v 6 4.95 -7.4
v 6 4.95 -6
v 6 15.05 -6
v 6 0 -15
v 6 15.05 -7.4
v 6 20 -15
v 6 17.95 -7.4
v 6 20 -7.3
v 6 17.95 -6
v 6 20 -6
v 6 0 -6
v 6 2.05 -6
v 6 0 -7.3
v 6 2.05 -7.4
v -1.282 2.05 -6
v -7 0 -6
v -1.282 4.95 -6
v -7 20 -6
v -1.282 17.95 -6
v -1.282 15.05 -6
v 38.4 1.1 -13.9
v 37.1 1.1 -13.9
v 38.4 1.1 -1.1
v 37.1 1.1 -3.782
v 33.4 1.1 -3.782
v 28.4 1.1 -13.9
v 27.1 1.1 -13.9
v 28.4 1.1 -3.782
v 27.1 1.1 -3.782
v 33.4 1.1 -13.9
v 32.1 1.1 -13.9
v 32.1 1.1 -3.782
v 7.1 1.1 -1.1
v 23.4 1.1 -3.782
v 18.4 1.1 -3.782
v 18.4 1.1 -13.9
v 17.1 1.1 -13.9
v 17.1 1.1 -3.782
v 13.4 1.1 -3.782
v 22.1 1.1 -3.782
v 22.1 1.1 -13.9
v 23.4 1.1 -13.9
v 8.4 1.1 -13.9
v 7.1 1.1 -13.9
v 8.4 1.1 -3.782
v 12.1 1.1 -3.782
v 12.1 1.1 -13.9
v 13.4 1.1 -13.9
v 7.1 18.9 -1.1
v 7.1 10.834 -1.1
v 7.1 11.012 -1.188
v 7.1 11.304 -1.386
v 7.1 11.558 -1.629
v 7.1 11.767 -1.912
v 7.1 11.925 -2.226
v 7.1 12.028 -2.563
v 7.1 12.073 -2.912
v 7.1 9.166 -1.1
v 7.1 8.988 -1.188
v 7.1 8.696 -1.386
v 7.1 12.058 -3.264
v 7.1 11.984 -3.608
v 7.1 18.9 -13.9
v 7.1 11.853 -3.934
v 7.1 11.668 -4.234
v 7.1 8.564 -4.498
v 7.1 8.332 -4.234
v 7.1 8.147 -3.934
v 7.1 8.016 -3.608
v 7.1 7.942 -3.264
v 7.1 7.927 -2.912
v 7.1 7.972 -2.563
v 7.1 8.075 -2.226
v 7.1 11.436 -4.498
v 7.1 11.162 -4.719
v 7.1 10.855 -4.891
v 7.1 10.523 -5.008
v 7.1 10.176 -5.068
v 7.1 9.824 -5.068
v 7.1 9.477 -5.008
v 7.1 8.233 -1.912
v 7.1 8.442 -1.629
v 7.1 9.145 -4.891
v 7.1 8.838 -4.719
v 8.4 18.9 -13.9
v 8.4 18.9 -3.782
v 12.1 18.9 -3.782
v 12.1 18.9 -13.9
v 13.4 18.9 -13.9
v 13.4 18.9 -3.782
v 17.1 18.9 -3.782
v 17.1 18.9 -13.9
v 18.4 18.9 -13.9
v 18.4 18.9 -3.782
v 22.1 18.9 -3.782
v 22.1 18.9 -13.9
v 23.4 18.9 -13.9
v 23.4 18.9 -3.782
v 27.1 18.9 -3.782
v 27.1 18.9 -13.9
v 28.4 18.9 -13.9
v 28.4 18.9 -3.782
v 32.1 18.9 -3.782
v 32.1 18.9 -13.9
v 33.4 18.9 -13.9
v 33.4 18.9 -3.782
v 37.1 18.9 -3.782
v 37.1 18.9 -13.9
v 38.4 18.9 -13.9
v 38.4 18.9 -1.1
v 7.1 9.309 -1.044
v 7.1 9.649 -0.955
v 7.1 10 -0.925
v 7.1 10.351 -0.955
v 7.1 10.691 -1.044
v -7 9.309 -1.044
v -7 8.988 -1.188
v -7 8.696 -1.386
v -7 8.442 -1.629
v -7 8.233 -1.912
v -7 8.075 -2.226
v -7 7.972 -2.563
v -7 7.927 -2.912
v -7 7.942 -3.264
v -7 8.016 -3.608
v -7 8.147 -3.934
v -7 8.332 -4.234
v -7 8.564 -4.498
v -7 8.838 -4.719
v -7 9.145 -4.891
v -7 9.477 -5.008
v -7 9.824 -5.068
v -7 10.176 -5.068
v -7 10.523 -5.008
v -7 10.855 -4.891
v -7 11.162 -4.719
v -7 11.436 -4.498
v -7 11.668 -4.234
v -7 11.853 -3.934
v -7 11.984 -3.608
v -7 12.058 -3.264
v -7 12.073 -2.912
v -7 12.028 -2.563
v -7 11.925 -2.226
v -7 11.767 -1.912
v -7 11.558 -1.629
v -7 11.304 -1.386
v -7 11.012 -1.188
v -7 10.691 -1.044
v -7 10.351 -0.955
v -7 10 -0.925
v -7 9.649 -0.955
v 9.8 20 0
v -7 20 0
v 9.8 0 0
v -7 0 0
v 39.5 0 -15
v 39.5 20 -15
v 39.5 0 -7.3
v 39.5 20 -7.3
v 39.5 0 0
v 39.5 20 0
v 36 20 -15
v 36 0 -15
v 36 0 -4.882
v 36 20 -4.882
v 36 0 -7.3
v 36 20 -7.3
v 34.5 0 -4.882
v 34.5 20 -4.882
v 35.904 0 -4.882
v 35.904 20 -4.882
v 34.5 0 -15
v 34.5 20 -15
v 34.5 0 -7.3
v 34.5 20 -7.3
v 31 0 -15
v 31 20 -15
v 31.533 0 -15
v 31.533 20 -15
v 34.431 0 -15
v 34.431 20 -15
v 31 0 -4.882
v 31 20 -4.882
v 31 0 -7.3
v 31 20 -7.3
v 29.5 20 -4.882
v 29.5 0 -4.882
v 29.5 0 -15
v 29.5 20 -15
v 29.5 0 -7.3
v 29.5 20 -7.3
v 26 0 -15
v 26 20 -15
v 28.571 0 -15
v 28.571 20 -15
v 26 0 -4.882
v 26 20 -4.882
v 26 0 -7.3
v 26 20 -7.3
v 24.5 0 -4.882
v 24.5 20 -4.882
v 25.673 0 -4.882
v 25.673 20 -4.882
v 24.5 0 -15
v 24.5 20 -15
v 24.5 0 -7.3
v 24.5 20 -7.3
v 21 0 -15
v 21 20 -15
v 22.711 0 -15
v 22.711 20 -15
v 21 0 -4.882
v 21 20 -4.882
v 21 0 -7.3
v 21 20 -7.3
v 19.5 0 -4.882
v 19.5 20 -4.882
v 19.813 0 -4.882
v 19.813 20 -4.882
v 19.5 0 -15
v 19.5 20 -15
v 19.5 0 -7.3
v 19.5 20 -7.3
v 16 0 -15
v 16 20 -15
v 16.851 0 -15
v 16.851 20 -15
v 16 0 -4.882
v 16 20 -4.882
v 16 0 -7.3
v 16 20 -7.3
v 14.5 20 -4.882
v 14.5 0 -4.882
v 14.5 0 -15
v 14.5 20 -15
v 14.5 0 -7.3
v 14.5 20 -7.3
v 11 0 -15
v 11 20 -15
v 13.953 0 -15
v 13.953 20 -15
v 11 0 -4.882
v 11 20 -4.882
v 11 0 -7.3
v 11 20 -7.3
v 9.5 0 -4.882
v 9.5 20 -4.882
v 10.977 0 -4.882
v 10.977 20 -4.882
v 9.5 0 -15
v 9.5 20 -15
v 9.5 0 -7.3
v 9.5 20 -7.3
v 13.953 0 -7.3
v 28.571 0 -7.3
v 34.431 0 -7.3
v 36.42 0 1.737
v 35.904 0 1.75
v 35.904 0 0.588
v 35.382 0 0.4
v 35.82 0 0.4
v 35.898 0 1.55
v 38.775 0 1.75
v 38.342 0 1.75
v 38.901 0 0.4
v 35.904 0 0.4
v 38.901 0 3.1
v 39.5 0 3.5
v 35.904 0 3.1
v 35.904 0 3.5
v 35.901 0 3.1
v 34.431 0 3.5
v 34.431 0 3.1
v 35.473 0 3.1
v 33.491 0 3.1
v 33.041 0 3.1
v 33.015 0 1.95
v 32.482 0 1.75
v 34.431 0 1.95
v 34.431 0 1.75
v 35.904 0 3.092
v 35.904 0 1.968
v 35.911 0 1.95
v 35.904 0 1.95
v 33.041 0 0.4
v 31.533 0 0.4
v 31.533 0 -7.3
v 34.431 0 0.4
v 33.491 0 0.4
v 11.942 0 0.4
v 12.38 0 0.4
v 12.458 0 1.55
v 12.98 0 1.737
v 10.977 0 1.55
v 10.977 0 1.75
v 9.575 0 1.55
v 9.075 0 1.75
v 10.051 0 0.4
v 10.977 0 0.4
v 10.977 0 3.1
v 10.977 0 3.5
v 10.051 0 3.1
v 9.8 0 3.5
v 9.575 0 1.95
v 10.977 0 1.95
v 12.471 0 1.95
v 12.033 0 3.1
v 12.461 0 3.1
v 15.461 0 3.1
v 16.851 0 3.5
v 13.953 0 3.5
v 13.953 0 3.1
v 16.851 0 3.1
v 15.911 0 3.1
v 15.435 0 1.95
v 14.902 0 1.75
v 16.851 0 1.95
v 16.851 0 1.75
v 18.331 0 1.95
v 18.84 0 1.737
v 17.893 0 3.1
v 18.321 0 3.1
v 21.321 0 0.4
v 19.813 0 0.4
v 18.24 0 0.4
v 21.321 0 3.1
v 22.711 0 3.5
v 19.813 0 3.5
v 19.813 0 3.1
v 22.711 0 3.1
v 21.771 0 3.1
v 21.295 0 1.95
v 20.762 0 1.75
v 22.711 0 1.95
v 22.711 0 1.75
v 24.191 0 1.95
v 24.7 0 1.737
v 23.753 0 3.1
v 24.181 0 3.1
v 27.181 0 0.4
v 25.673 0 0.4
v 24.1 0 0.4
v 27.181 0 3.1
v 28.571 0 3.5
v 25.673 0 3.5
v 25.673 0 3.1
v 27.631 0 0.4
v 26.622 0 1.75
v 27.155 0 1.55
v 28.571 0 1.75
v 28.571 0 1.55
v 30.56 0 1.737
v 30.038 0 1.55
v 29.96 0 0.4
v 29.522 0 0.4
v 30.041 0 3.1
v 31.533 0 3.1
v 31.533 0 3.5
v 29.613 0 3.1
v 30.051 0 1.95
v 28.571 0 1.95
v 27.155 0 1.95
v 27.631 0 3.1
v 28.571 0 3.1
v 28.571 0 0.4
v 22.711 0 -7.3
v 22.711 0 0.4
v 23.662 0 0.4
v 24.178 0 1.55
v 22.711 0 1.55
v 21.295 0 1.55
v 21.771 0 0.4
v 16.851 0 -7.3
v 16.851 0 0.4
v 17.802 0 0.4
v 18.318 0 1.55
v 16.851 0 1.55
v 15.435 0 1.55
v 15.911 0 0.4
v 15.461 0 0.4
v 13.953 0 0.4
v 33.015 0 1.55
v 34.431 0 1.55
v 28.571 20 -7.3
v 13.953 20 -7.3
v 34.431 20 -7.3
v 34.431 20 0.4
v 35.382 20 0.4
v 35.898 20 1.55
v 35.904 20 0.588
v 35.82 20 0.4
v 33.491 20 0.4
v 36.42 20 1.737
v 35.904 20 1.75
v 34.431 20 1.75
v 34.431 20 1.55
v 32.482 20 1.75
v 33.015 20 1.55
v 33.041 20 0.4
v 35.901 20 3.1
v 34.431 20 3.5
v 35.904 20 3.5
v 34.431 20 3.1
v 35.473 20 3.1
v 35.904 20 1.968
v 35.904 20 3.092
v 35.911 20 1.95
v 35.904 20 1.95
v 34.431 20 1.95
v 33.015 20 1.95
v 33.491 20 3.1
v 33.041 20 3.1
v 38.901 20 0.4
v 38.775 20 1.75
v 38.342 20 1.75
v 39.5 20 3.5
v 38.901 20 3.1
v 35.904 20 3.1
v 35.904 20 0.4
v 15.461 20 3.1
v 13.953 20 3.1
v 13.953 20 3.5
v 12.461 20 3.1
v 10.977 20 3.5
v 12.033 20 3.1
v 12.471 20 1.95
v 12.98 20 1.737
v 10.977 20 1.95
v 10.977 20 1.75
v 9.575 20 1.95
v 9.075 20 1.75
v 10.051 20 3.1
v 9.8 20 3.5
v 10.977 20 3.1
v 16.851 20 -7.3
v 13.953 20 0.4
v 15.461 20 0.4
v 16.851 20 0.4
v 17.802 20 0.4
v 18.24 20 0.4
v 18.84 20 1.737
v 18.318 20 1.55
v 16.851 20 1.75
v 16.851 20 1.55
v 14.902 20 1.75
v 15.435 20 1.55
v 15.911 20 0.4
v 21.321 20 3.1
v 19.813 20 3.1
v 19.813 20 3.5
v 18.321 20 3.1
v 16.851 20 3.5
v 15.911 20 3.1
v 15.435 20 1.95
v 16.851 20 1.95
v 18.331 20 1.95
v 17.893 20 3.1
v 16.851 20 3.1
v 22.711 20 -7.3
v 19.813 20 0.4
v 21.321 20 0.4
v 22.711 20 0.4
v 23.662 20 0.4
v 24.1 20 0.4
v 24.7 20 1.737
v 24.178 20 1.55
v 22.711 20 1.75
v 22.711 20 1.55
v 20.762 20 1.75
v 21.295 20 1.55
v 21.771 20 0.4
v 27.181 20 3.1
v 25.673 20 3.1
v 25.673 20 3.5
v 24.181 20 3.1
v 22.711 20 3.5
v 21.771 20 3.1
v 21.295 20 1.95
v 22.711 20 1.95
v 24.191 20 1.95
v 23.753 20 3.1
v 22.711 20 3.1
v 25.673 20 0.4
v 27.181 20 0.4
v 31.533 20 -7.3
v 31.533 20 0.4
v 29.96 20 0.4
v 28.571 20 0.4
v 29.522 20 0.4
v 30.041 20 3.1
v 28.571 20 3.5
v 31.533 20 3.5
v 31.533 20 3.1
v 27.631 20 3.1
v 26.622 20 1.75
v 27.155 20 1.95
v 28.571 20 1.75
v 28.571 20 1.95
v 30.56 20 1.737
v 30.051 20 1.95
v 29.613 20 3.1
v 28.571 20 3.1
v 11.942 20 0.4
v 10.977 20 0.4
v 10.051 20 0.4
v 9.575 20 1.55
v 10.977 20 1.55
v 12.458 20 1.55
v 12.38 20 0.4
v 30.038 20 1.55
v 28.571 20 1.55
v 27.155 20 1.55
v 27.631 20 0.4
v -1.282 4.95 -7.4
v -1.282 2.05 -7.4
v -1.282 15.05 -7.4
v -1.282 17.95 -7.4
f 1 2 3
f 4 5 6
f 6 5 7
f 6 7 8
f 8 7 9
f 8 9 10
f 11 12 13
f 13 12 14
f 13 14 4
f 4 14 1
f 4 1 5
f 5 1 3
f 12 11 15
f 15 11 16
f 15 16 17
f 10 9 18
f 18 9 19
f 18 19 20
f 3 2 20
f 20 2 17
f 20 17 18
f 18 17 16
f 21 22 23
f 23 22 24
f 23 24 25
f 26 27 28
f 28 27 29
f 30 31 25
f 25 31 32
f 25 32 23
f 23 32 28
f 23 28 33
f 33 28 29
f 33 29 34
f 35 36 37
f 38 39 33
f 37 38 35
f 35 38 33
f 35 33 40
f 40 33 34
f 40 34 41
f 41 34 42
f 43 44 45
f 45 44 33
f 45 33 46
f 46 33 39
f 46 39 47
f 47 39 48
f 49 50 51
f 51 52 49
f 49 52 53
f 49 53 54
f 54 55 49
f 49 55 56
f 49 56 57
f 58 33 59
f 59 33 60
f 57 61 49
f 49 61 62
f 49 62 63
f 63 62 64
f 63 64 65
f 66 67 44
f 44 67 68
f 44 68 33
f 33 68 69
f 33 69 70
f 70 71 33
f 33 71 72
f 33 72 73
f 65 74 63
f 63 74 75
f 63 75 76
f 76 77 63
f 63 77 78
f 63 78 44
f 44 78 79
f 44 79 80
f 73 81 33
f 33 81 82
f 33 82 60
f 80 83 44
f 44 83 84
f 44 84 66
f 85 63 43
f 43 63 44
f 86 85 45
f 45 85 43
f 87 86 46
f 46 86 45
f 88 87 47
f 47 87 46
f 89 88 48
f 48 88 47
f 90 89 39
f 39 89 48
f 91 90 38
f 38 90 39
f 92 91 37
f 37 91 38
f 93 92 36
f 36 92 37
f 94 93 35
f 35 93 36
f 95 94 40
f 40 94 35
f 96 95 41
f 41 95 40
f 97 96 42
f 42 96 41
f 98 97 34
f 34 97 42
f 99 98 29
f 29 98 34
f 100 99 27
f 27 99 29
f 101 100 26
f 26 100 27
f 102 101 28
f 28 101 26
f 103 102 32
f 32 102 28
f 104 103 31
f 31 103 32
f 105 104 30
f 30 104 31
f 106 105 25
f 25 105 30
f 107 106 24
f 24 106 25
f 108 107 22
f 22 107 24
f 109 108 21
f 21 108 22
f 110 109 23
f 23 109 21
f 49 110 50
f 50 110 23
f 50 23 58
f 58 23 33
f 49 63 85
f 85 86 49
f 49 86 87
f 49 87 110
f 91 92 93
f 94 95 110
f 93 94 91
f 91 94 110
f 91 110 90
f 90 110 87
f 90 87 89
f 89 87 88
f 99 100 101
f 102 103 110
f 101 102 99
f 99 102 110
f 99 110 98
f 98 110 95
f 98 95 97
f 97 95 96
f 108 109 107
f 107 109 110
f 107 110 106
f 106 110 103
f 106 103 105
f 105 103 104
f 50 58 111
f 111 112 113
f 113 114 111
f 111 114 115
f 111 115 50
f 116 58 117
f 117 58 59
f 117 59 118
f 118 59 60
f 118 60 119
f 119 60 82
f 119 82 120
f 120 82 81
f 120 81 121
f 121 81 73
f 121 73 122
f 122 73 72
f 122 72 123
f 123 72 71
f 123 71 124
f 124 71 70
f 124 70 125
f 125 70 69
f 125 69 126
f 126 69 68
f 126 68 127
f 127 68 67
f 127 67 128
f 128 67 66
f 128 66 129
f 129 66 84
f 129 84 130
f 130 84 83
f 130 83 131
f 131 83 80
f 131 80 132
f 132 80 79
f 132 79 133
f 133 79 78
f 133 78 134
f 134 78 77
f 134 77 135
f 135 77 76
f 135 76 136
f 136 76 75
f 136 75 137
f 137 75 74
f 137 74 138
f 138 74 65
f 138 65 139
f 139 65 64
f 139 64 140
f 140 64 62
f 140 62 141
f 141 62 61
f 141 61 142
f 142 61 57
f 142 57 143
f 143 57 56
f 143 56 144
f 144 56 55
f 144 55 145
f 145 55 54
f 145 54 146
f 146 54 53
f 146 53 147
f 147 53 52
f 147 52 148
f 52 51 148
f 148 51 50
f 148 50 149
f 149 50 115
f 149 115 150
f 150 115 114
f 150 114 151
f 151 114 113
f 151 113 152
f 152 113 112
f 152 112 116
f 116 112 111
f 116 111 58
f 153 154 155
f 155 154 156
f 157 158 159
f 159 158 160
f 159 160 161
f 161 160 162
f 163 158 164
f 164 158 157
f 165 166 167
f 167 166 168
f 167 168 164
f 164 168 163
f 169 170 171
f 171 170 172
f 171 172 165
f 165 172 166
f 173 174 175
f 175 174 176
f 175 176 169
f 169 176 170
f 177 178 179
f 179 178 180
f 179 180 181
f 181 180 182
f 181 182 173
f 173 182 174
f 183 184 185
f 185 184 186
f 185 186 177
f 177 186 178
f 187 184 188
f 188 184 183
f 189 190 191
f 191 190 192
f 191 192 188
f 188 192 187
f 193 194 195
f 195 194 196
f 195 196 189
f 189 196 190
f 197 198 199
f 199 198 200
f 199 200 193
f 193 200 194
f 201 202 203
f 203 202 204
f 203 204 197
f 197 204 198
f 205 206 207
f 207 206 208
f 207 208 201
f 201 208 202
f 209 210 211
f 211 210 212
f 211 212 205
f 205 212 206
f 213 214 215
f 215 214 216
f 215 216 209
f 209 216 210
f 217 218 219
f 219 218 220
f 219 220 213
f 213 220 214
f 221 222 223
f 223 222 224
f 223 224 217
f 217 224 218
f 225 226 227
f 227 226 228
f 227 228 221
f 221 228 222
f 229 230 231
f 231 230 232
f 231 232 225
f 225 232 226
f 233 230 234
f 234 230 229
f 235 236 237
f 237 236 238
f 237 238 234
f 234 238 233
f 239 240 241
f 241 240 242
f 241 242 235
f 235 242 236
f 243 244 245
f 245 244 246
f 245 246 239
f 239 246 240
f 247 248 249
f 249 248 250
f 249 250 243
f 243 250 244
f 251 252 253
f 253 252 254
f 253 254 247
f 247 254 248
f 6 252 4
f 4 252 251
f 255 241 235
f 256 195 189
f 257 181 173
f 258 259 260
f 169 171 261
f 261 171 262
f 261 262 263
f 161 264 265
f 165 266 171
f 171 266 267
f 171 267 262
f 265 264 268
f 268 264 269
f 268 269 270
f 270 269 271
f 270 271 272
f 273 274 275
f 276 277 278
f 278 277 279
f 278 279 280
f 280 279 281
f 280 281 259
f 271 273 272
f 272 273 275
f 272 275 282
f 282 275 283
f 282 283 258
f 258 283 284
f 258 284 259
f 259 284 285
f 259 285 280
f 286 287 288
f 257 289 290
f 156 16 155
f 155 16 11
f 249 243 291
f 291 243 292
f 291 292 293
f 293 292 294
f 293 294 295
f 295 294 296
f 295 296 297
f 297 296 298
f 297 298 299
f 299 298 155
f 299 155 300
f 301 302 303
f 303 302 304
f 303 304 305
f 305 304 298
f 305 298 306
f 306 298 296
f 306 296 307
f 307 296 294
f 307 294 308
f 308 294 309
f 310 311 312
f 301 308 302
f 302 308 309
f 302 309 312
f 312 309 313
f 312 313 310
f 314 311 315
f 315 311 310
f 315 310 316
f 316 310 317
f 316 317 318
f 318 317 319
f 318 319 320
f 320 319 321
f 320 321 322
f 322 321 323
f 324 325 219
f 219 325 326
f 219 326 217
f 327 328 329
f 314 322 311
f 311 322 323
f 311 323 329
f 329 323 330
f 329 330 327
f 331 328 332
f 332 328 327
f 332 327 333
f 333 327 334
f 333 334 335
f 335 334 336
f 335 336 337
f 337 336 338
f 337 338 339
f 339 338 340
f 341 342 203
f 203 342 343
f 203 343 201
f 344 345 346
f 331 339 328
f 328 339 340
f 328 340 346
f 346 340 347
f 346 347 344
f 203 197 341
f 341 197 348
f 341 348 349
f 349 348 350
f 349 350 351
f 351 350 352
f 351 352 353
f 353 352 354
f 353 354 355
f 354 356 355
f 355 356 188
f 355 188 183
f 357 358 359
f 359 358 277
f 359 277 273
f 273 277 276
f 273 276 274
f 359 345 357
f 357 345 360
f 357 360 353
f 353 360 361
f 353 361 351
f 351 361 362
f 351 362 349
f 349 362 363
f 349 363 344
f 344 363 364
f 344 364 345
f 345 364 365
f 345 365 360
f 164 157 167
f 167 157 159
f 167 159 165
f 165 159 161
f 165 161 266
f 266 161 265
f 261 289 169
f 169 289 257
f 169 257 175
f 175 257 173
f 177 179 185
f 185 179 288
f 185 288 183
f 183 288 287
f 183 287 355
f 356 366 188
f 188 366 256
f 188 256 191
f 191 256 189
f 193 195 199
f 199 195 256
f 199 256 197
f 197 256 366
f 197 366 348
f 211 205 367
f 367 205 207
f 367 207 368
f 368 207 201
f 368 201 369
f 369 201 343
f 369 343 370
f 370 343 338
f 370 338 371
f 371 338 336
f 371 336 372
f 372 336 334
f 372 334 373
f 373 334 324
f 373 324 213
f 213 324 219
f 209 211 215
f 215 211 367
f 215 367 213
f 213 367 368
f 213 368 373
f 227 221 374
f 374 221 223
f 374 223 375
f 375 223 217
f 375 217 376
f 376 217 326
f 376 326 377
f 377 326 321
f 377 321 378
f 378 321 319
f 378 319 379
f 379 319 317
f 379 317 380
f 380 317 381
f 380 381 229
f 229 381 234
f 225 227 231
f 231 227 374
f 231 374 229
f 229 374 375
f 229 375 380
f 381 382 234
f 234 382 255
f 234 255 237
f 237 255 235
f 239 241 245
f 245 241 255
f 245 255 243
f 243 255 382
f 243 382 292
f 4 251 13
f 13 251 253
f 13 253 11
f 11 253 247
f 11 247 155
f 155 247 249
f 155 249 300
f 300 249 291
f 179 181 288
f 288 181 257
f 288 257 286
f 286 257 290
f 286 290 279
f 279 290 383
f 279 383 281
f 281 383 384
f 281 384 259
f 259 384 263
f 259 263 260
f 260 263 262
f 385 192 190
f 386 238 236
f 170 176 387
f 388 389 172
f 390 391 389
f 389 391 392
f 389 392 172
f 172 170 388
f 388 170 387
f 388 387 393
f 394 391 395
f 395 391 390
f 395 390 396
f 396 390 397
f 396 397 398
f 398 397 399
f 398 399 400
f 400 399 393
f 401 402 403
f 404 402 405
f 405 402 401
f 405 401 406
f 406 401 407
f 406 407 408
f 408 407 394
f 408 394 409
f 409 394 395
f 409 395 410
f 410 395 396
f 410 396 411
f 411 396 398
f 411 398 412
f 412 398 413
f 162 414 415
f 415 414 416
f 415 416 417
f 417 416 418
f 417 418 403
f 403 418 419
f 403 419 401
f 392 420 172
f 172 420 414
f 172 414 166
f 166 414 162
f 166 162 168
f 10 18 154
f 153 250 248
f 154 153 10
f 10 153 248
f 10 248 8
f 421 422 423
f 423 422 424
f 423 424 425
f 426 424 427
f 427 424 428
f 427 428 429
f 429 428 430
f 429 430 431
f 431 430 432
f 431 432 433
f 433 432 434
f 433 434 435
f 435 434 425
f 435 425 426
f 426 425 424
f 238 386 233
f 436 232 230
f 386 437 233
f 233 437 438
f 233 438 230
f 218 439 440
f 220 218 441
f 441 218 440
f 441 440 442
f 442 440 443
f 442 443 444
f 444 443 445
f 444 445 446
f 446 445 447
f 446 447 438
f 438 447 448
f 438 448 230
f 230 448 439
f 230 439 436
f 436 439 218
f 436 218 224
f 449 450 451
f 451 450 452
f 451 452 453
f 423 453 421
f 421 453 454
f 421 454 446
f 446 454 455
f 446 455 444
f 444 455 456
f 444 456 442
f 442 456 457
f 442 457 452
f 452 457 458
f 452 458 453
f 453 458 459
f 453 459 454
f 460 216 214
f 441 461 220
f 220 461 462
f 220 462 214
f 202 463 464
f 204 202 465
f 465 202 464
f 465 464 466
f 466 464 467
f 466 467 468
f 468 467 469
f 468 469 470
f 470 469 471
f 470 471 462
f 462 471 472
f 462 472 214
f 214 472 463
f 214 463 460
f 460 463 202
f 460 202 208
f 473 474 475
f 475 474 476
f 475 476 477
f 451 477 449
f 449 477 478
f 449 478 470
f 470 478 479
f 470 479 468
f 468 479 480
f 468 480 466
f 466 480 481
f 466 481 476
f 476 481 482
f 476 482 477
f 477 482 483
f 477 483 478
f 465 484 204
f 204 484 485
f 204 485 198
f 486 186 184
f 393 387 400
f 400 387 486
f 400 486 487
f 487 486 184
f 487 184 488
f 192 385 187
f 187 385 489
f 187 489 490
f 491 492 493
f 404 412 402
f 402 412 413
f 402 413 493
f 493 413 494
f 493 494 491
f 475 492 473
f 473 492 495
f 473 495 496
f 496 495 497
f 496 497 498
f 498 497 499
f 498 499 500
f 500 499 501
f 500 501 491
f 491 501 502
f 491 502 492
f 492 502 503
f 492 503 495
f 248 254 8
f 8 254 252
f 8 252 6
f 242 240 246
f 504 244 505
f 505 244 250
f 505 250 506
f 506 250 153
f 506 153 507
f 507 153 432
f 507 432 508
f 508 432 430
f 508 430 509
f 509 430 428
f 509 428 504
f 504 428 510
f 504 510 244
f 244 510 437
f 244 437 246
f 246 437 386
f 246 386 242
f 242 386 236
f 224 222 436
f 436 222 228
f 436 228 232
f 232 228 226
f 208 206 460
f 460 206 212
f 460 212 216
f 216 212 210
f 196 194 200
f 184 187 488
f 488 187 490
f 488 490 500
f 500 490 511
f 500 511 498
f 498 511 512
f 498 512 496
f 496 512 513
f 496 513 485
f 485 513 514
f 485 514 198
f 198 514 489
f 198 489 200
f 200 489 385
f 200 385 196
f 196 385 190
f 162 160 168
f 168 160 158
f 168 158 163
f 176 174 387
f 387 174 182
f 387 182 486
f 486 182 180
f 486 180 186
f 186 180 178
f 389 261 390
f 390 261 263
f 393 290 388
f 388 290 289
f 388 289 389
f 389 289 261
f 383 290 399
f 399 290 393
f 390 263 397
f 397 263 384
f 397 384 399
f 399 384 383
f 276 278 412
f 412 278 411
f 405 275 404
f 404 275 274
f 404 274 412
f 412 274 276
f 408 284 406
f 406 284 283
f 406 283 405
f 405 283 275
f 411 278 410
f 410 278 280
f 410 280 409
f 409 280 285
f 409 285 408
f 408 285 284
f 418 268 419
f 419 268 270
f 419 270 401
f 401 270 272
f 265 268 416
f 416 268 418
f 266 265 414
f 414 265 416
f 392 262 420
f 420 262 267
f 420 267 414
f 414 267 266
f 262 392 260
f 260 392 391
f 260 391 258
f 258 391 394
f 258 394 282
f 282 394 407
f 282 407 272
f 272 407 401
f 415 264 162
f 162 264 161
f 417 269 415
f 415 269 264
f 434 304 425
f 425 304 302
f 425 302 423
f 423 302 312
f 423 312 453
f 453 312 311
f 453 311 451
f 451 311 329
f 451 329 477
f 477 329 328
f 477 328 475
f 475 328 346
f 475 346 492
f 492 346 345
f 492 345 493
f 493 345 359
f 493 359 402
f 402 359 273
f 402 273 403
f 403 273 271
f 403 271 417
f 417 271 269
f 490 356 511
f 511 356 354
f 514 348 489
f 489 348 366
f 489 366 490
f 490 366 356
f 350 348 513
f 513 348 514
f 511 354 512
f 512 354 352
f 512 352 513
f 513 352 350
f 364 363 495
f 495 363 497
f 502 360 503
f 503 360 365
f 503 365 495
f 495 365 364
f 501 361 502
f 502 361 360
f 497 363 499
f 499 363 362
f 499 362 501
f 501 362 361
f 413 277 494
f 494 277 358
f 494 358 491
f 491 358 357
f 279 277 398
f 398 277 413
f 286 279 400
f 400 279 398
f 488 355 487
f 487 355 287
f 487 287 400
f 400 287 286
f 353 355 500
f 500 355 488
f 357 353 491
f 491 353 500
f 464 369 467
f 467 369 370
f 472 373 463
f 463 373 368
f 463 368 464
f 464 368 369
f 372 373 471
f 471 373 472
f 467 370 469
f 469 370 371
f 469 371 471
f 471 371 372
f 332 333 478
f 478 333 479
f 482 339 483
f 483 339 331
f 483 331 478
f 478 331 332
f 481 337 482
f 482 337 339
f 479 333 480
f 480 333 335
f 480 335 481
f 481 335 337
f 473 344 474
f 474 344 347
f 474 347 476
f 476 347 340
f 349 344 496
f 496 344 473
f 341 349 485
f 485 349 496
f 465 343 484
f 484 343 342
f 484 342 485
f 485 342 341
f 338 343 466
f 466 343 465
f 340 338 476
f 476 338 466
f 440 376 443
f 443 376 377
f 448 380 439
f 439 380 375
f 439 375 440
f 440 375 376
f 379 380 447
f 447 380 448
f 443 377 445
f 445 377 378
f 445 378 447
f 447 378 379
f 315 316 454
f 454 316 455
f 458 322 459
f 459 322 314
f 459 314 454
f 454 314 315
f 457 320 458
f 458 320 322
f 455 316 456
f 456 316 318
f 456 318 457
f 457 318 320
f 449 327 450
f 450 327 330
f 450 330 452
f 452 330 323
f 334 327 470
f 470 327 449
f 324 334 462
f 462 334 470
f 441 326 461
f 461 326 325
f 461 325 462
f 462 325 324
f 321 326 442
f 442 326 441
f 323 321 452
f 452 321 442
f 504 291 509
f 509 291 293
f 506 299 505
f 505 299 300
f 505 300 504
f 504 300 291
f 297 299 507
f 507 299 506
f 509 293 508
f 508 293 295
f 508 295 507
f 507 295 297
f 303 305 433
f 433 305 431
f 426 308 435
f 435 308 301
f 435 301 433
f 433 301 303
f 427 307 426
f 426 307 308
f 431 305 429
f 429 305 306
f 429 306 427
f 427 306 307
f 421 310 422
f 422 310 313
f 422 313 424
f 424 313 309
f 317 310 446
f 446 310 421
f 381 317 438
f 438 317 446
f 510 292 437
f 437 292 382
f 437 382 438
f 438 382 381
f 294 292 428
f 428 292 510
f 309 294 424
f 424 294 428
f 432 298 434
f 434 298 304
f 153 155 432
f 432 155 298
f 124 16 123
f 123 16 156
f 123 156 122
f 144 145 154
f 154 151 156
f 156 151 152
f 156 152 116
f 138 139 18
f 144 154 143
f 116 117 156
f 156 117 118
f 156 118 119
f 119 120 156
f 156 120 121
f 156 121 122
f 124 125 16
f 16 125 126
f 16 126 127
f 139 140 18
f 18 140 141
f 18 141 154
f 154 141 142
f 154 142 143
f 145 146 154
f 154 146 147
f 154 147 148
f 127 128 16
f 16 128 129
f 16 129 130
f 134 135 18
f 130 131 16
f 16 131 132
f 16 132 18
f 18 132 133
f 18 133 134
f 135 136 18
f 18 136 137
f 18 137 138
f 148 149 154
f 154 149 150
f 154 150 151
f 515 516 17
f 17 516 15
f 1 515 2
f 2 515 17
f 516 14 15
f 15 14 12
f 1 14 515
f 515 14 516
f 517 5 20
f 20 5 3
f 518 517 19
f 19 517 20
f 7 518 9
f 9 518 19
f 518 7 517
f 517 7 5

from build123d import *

# Parameters (mm, degrees)
BOSS_EXTRUDE1_DEPTH = 1.1
BOSS_EXTRUDE2_DEPTH = 17.8
BOSS_EXTRUDE3_DEPTH = 1.1
BOSS_EXTRUDE4_DEPTH = 20
LPATTERN1_COUNT     = 5
LPATTERN1_PITCH     = 5.86
BOSS_EXTRUDE5_DEPTH = 20
SKETCH7_W           = 6
SKETCH7_H           = 20
BOSS_EXTRUDE6_DEPTH = 7
SKETCH8_R           = 2.075
CUT_EXTRUDE1_DEPTH  = 14.1
SKETCH9_W           = 7.282395113
SKETCH9_H           = 2.9
BOSS_EXTRUDE7_DEPTH = 1.4


with BuildPart() as part:
    # Sketch2 → Boss-Extrude1 (new body)
    with BuildSketch(Plane(origin=(0, 0, 0), x_dir=(1, 0, 0), z_dir=(0, 1, 0))):
        Polygon((36, 15), (36, 4.881546635), (34.5, 4.881546635), (34.5, 15), (31, 15), (31, 4.881546635), (29.5, 4.881546635), (29.5, 15), (26, 15), (26, 4.881546635), (24.5, 4.881546635), (24.5, 15), (21, 15), (21, 4.881546635), (19.5, 4.881546635), (19.5, 15), (16, 15), (16, 4.881546635), (14.5, 4.881546635), (14.5, 15), (11, 15), (11, 4.881546635), (9.5, 4.881546635), (9.5, 15), (6, 15), (6, 6), (4.5, 6), (0, 6), (0, 0), (39.5, 0), (39.5, 15), align=None)
    extrude(amount=BOSS_EXTRUDE1_DEPTH)

    # Sketch3 → Boss-Extrude2 (add)
    with BuildSketch(Plane(origin=(0, 1.1, 0), x_dir=(1, 0, 0), z_dir=(0, 1, 0))):
        Polygon((6, 6), (0, 6), (0, 0), (39.5, 0), (39.5, 15), (36, 15), (36, 4.881546635), (34.5, 4.881546635), (34.5, 15), (31, 15), (31, 4.881546635), (29.5, 4.881546635), (29.5, 15), (26, 15), (26, 4.881546635), (24.5, 4.881546635), (24.5, 15), (21, 15), (21, 4.881546635), (19.5, 4.881546635), (19.5, 15), (16, 15), (16, 4.881546635), (14.5, 4.881546635), (14.5, 15), (11, 15), (11, 4.881546635), (9.5, 4.881546635), (9.5, 15), (6, 15), align=None)
        Polygon((7.1, 4.9), (7.1, 1.1), (38.4, 1.1), (38.4, 13.9), (37.1, 13.9), (37.1, 3.781546635), (33.4, 3.781546635), (33.4, 13.9), (32.1, 13.9), (32.1, 3.781546635), (28.4, 3.781546635), (28.4, 13.9), (27.1, 13.9), (27.1, 3.781546635), (23.4, 3.781546635), (23.4, 13.9), (22.1, 13.9), (22.1, 3.781546635), (18.4, 3.781546635), (18.4, 13.9), (17.1, 13.9), (17.1, 3.781546635), (13.4, 3.781546635), (13.4, 13.9), (12.1, 13.9), (12.1, 3.781546635), (8.4, 3.781546635), (8.4, 13.9), (7.1, 13.9), align=None, mode=Mode.SUBTRACT)
    extrude(amount=BOSS_EXTRUDE2_DEPTH)

    # Sketch4 → Boss-Extrude3 (add)
    with BuildSketch(Plane(origin=(0, 18.9, 0), x_dir=(1, 0, 0), z_dir=(0, 1, 0))):
        Polygon((0, 6), (0, 0), (39.5, 0), (39.5, 15), (36, 15), (36, 4.881546635), (34.5, 4.881546635), (34.5, 15), (31, 15), (31, 4.881546635), (29.5, 4.881546635), (29.5, 15), (26, 15), (26, 4.881546635), (24.5, 4.881546635), (24.5, 15), (21, 15), (21, 4.881546635), (19.5, 4.881546635), (19.5, 15), (16, 15), (16, 4.881546635), (14.5, 4.881546635), (14.5, 15), (11, 15), (11, 4.881546635), (9.5, 4.881546635), (9.5, 15), (6, 15), (6, 6), align=None)
    extrude(amount=BOSS_EXTRUDE3_DEPTH)

    # Sketch5 → Boss-Extrude4 (add)
    with BuildSketch(Plane.XZ):
        Polygon((33.440143193, 0), (39.5, 0), (38.775126266, 1.75), (39.5, 3.5), (33.440143193, 3.5), (32.715269459, 1.75), align=None)
        Polygon((33.014590612, 1.55), (35.897512895, 1.55), (35.381626855, 0.4), (34.816385288, 0.4), (33.490936209, 0.4), align=None, mode=Mode.SUBTRACT)
        Polygon((34.74142697, 3.1), (35.473359212, 3.1), (35.911102874, 1.95), (33.014590612, 1.95), (33.490936209, 3.1), align=None, mode=Mode.SUBTRACT)
        Polygon((35.820031028, 0.4), (36.420007202, 1.737451581), (35.901357695, 3.1), (38.901357695, 3.1), (38.342169386, 1.75), (38.901357695, 0.4), align=None, mode=Mode.SUBTRACT)
    boss_extrude4 = extrude(amount=-BOSS_EXTRUDE4_DEPTH)

    # LPattern1: Boss-Extrude4 ×5
    with Locations(*[(-i * LPATTERN1_PITCH, 0, 0) for i in range(1, LPATTERN1_COUNT)]):
        add(boss_extrude4)

    # Sketch6 → Boss-Extrude5 (add)
    with BuildSketch(Plane.XZ):
        Polygon((10.000143193, 3.5), (9.800143193, 3.5), (9.075269459, 1.75), (9.800143193, 0), (10.000143193, 0), (9.275269459, 1.75), align=None)
    extrude(amount=-BOSS_EXTRUDE5_DEPTH)

    # Sketch7 → Boss-Extrude6 (add)
    with BuildSketch(Plane.ZY):
        with Locations((-3, 10)):
            Rectangle(SKETCH7_W, SKETCH7_H)
    extrude(amount=BOSS_EXTRUDE6_DEPTH)

    # Sketch8 → Cut-Extrude1 (cut)
    with BuildSketch(Plane.ZY.offset(7)):
        with Locations((-3, 10)):
            Circle(SKETCH8_R)
    extrude(amount=-CUT_EXTRUDE1_DEPTH, mode=Mode.SUBTRACT)

    # Sketch9 → Boss-Extrude7 (add)
    with BuildSketch(Plane(origin=(0, 0, -6), x_dir=(-1, 0, 0), z_dir=(0, 0, -1))):
        with Locations((-2.358802444, 3.5)):
            Rectangle(SKETCH9_W, SKETCH9_H)
        with Locations((-2.358802444, 16.5)):
            Rectangle(SKETCH9_W, SKETCH9_H)
    extrude(amount=BOSS_EXTRUDE7_DEPTH)


solid = part.part
